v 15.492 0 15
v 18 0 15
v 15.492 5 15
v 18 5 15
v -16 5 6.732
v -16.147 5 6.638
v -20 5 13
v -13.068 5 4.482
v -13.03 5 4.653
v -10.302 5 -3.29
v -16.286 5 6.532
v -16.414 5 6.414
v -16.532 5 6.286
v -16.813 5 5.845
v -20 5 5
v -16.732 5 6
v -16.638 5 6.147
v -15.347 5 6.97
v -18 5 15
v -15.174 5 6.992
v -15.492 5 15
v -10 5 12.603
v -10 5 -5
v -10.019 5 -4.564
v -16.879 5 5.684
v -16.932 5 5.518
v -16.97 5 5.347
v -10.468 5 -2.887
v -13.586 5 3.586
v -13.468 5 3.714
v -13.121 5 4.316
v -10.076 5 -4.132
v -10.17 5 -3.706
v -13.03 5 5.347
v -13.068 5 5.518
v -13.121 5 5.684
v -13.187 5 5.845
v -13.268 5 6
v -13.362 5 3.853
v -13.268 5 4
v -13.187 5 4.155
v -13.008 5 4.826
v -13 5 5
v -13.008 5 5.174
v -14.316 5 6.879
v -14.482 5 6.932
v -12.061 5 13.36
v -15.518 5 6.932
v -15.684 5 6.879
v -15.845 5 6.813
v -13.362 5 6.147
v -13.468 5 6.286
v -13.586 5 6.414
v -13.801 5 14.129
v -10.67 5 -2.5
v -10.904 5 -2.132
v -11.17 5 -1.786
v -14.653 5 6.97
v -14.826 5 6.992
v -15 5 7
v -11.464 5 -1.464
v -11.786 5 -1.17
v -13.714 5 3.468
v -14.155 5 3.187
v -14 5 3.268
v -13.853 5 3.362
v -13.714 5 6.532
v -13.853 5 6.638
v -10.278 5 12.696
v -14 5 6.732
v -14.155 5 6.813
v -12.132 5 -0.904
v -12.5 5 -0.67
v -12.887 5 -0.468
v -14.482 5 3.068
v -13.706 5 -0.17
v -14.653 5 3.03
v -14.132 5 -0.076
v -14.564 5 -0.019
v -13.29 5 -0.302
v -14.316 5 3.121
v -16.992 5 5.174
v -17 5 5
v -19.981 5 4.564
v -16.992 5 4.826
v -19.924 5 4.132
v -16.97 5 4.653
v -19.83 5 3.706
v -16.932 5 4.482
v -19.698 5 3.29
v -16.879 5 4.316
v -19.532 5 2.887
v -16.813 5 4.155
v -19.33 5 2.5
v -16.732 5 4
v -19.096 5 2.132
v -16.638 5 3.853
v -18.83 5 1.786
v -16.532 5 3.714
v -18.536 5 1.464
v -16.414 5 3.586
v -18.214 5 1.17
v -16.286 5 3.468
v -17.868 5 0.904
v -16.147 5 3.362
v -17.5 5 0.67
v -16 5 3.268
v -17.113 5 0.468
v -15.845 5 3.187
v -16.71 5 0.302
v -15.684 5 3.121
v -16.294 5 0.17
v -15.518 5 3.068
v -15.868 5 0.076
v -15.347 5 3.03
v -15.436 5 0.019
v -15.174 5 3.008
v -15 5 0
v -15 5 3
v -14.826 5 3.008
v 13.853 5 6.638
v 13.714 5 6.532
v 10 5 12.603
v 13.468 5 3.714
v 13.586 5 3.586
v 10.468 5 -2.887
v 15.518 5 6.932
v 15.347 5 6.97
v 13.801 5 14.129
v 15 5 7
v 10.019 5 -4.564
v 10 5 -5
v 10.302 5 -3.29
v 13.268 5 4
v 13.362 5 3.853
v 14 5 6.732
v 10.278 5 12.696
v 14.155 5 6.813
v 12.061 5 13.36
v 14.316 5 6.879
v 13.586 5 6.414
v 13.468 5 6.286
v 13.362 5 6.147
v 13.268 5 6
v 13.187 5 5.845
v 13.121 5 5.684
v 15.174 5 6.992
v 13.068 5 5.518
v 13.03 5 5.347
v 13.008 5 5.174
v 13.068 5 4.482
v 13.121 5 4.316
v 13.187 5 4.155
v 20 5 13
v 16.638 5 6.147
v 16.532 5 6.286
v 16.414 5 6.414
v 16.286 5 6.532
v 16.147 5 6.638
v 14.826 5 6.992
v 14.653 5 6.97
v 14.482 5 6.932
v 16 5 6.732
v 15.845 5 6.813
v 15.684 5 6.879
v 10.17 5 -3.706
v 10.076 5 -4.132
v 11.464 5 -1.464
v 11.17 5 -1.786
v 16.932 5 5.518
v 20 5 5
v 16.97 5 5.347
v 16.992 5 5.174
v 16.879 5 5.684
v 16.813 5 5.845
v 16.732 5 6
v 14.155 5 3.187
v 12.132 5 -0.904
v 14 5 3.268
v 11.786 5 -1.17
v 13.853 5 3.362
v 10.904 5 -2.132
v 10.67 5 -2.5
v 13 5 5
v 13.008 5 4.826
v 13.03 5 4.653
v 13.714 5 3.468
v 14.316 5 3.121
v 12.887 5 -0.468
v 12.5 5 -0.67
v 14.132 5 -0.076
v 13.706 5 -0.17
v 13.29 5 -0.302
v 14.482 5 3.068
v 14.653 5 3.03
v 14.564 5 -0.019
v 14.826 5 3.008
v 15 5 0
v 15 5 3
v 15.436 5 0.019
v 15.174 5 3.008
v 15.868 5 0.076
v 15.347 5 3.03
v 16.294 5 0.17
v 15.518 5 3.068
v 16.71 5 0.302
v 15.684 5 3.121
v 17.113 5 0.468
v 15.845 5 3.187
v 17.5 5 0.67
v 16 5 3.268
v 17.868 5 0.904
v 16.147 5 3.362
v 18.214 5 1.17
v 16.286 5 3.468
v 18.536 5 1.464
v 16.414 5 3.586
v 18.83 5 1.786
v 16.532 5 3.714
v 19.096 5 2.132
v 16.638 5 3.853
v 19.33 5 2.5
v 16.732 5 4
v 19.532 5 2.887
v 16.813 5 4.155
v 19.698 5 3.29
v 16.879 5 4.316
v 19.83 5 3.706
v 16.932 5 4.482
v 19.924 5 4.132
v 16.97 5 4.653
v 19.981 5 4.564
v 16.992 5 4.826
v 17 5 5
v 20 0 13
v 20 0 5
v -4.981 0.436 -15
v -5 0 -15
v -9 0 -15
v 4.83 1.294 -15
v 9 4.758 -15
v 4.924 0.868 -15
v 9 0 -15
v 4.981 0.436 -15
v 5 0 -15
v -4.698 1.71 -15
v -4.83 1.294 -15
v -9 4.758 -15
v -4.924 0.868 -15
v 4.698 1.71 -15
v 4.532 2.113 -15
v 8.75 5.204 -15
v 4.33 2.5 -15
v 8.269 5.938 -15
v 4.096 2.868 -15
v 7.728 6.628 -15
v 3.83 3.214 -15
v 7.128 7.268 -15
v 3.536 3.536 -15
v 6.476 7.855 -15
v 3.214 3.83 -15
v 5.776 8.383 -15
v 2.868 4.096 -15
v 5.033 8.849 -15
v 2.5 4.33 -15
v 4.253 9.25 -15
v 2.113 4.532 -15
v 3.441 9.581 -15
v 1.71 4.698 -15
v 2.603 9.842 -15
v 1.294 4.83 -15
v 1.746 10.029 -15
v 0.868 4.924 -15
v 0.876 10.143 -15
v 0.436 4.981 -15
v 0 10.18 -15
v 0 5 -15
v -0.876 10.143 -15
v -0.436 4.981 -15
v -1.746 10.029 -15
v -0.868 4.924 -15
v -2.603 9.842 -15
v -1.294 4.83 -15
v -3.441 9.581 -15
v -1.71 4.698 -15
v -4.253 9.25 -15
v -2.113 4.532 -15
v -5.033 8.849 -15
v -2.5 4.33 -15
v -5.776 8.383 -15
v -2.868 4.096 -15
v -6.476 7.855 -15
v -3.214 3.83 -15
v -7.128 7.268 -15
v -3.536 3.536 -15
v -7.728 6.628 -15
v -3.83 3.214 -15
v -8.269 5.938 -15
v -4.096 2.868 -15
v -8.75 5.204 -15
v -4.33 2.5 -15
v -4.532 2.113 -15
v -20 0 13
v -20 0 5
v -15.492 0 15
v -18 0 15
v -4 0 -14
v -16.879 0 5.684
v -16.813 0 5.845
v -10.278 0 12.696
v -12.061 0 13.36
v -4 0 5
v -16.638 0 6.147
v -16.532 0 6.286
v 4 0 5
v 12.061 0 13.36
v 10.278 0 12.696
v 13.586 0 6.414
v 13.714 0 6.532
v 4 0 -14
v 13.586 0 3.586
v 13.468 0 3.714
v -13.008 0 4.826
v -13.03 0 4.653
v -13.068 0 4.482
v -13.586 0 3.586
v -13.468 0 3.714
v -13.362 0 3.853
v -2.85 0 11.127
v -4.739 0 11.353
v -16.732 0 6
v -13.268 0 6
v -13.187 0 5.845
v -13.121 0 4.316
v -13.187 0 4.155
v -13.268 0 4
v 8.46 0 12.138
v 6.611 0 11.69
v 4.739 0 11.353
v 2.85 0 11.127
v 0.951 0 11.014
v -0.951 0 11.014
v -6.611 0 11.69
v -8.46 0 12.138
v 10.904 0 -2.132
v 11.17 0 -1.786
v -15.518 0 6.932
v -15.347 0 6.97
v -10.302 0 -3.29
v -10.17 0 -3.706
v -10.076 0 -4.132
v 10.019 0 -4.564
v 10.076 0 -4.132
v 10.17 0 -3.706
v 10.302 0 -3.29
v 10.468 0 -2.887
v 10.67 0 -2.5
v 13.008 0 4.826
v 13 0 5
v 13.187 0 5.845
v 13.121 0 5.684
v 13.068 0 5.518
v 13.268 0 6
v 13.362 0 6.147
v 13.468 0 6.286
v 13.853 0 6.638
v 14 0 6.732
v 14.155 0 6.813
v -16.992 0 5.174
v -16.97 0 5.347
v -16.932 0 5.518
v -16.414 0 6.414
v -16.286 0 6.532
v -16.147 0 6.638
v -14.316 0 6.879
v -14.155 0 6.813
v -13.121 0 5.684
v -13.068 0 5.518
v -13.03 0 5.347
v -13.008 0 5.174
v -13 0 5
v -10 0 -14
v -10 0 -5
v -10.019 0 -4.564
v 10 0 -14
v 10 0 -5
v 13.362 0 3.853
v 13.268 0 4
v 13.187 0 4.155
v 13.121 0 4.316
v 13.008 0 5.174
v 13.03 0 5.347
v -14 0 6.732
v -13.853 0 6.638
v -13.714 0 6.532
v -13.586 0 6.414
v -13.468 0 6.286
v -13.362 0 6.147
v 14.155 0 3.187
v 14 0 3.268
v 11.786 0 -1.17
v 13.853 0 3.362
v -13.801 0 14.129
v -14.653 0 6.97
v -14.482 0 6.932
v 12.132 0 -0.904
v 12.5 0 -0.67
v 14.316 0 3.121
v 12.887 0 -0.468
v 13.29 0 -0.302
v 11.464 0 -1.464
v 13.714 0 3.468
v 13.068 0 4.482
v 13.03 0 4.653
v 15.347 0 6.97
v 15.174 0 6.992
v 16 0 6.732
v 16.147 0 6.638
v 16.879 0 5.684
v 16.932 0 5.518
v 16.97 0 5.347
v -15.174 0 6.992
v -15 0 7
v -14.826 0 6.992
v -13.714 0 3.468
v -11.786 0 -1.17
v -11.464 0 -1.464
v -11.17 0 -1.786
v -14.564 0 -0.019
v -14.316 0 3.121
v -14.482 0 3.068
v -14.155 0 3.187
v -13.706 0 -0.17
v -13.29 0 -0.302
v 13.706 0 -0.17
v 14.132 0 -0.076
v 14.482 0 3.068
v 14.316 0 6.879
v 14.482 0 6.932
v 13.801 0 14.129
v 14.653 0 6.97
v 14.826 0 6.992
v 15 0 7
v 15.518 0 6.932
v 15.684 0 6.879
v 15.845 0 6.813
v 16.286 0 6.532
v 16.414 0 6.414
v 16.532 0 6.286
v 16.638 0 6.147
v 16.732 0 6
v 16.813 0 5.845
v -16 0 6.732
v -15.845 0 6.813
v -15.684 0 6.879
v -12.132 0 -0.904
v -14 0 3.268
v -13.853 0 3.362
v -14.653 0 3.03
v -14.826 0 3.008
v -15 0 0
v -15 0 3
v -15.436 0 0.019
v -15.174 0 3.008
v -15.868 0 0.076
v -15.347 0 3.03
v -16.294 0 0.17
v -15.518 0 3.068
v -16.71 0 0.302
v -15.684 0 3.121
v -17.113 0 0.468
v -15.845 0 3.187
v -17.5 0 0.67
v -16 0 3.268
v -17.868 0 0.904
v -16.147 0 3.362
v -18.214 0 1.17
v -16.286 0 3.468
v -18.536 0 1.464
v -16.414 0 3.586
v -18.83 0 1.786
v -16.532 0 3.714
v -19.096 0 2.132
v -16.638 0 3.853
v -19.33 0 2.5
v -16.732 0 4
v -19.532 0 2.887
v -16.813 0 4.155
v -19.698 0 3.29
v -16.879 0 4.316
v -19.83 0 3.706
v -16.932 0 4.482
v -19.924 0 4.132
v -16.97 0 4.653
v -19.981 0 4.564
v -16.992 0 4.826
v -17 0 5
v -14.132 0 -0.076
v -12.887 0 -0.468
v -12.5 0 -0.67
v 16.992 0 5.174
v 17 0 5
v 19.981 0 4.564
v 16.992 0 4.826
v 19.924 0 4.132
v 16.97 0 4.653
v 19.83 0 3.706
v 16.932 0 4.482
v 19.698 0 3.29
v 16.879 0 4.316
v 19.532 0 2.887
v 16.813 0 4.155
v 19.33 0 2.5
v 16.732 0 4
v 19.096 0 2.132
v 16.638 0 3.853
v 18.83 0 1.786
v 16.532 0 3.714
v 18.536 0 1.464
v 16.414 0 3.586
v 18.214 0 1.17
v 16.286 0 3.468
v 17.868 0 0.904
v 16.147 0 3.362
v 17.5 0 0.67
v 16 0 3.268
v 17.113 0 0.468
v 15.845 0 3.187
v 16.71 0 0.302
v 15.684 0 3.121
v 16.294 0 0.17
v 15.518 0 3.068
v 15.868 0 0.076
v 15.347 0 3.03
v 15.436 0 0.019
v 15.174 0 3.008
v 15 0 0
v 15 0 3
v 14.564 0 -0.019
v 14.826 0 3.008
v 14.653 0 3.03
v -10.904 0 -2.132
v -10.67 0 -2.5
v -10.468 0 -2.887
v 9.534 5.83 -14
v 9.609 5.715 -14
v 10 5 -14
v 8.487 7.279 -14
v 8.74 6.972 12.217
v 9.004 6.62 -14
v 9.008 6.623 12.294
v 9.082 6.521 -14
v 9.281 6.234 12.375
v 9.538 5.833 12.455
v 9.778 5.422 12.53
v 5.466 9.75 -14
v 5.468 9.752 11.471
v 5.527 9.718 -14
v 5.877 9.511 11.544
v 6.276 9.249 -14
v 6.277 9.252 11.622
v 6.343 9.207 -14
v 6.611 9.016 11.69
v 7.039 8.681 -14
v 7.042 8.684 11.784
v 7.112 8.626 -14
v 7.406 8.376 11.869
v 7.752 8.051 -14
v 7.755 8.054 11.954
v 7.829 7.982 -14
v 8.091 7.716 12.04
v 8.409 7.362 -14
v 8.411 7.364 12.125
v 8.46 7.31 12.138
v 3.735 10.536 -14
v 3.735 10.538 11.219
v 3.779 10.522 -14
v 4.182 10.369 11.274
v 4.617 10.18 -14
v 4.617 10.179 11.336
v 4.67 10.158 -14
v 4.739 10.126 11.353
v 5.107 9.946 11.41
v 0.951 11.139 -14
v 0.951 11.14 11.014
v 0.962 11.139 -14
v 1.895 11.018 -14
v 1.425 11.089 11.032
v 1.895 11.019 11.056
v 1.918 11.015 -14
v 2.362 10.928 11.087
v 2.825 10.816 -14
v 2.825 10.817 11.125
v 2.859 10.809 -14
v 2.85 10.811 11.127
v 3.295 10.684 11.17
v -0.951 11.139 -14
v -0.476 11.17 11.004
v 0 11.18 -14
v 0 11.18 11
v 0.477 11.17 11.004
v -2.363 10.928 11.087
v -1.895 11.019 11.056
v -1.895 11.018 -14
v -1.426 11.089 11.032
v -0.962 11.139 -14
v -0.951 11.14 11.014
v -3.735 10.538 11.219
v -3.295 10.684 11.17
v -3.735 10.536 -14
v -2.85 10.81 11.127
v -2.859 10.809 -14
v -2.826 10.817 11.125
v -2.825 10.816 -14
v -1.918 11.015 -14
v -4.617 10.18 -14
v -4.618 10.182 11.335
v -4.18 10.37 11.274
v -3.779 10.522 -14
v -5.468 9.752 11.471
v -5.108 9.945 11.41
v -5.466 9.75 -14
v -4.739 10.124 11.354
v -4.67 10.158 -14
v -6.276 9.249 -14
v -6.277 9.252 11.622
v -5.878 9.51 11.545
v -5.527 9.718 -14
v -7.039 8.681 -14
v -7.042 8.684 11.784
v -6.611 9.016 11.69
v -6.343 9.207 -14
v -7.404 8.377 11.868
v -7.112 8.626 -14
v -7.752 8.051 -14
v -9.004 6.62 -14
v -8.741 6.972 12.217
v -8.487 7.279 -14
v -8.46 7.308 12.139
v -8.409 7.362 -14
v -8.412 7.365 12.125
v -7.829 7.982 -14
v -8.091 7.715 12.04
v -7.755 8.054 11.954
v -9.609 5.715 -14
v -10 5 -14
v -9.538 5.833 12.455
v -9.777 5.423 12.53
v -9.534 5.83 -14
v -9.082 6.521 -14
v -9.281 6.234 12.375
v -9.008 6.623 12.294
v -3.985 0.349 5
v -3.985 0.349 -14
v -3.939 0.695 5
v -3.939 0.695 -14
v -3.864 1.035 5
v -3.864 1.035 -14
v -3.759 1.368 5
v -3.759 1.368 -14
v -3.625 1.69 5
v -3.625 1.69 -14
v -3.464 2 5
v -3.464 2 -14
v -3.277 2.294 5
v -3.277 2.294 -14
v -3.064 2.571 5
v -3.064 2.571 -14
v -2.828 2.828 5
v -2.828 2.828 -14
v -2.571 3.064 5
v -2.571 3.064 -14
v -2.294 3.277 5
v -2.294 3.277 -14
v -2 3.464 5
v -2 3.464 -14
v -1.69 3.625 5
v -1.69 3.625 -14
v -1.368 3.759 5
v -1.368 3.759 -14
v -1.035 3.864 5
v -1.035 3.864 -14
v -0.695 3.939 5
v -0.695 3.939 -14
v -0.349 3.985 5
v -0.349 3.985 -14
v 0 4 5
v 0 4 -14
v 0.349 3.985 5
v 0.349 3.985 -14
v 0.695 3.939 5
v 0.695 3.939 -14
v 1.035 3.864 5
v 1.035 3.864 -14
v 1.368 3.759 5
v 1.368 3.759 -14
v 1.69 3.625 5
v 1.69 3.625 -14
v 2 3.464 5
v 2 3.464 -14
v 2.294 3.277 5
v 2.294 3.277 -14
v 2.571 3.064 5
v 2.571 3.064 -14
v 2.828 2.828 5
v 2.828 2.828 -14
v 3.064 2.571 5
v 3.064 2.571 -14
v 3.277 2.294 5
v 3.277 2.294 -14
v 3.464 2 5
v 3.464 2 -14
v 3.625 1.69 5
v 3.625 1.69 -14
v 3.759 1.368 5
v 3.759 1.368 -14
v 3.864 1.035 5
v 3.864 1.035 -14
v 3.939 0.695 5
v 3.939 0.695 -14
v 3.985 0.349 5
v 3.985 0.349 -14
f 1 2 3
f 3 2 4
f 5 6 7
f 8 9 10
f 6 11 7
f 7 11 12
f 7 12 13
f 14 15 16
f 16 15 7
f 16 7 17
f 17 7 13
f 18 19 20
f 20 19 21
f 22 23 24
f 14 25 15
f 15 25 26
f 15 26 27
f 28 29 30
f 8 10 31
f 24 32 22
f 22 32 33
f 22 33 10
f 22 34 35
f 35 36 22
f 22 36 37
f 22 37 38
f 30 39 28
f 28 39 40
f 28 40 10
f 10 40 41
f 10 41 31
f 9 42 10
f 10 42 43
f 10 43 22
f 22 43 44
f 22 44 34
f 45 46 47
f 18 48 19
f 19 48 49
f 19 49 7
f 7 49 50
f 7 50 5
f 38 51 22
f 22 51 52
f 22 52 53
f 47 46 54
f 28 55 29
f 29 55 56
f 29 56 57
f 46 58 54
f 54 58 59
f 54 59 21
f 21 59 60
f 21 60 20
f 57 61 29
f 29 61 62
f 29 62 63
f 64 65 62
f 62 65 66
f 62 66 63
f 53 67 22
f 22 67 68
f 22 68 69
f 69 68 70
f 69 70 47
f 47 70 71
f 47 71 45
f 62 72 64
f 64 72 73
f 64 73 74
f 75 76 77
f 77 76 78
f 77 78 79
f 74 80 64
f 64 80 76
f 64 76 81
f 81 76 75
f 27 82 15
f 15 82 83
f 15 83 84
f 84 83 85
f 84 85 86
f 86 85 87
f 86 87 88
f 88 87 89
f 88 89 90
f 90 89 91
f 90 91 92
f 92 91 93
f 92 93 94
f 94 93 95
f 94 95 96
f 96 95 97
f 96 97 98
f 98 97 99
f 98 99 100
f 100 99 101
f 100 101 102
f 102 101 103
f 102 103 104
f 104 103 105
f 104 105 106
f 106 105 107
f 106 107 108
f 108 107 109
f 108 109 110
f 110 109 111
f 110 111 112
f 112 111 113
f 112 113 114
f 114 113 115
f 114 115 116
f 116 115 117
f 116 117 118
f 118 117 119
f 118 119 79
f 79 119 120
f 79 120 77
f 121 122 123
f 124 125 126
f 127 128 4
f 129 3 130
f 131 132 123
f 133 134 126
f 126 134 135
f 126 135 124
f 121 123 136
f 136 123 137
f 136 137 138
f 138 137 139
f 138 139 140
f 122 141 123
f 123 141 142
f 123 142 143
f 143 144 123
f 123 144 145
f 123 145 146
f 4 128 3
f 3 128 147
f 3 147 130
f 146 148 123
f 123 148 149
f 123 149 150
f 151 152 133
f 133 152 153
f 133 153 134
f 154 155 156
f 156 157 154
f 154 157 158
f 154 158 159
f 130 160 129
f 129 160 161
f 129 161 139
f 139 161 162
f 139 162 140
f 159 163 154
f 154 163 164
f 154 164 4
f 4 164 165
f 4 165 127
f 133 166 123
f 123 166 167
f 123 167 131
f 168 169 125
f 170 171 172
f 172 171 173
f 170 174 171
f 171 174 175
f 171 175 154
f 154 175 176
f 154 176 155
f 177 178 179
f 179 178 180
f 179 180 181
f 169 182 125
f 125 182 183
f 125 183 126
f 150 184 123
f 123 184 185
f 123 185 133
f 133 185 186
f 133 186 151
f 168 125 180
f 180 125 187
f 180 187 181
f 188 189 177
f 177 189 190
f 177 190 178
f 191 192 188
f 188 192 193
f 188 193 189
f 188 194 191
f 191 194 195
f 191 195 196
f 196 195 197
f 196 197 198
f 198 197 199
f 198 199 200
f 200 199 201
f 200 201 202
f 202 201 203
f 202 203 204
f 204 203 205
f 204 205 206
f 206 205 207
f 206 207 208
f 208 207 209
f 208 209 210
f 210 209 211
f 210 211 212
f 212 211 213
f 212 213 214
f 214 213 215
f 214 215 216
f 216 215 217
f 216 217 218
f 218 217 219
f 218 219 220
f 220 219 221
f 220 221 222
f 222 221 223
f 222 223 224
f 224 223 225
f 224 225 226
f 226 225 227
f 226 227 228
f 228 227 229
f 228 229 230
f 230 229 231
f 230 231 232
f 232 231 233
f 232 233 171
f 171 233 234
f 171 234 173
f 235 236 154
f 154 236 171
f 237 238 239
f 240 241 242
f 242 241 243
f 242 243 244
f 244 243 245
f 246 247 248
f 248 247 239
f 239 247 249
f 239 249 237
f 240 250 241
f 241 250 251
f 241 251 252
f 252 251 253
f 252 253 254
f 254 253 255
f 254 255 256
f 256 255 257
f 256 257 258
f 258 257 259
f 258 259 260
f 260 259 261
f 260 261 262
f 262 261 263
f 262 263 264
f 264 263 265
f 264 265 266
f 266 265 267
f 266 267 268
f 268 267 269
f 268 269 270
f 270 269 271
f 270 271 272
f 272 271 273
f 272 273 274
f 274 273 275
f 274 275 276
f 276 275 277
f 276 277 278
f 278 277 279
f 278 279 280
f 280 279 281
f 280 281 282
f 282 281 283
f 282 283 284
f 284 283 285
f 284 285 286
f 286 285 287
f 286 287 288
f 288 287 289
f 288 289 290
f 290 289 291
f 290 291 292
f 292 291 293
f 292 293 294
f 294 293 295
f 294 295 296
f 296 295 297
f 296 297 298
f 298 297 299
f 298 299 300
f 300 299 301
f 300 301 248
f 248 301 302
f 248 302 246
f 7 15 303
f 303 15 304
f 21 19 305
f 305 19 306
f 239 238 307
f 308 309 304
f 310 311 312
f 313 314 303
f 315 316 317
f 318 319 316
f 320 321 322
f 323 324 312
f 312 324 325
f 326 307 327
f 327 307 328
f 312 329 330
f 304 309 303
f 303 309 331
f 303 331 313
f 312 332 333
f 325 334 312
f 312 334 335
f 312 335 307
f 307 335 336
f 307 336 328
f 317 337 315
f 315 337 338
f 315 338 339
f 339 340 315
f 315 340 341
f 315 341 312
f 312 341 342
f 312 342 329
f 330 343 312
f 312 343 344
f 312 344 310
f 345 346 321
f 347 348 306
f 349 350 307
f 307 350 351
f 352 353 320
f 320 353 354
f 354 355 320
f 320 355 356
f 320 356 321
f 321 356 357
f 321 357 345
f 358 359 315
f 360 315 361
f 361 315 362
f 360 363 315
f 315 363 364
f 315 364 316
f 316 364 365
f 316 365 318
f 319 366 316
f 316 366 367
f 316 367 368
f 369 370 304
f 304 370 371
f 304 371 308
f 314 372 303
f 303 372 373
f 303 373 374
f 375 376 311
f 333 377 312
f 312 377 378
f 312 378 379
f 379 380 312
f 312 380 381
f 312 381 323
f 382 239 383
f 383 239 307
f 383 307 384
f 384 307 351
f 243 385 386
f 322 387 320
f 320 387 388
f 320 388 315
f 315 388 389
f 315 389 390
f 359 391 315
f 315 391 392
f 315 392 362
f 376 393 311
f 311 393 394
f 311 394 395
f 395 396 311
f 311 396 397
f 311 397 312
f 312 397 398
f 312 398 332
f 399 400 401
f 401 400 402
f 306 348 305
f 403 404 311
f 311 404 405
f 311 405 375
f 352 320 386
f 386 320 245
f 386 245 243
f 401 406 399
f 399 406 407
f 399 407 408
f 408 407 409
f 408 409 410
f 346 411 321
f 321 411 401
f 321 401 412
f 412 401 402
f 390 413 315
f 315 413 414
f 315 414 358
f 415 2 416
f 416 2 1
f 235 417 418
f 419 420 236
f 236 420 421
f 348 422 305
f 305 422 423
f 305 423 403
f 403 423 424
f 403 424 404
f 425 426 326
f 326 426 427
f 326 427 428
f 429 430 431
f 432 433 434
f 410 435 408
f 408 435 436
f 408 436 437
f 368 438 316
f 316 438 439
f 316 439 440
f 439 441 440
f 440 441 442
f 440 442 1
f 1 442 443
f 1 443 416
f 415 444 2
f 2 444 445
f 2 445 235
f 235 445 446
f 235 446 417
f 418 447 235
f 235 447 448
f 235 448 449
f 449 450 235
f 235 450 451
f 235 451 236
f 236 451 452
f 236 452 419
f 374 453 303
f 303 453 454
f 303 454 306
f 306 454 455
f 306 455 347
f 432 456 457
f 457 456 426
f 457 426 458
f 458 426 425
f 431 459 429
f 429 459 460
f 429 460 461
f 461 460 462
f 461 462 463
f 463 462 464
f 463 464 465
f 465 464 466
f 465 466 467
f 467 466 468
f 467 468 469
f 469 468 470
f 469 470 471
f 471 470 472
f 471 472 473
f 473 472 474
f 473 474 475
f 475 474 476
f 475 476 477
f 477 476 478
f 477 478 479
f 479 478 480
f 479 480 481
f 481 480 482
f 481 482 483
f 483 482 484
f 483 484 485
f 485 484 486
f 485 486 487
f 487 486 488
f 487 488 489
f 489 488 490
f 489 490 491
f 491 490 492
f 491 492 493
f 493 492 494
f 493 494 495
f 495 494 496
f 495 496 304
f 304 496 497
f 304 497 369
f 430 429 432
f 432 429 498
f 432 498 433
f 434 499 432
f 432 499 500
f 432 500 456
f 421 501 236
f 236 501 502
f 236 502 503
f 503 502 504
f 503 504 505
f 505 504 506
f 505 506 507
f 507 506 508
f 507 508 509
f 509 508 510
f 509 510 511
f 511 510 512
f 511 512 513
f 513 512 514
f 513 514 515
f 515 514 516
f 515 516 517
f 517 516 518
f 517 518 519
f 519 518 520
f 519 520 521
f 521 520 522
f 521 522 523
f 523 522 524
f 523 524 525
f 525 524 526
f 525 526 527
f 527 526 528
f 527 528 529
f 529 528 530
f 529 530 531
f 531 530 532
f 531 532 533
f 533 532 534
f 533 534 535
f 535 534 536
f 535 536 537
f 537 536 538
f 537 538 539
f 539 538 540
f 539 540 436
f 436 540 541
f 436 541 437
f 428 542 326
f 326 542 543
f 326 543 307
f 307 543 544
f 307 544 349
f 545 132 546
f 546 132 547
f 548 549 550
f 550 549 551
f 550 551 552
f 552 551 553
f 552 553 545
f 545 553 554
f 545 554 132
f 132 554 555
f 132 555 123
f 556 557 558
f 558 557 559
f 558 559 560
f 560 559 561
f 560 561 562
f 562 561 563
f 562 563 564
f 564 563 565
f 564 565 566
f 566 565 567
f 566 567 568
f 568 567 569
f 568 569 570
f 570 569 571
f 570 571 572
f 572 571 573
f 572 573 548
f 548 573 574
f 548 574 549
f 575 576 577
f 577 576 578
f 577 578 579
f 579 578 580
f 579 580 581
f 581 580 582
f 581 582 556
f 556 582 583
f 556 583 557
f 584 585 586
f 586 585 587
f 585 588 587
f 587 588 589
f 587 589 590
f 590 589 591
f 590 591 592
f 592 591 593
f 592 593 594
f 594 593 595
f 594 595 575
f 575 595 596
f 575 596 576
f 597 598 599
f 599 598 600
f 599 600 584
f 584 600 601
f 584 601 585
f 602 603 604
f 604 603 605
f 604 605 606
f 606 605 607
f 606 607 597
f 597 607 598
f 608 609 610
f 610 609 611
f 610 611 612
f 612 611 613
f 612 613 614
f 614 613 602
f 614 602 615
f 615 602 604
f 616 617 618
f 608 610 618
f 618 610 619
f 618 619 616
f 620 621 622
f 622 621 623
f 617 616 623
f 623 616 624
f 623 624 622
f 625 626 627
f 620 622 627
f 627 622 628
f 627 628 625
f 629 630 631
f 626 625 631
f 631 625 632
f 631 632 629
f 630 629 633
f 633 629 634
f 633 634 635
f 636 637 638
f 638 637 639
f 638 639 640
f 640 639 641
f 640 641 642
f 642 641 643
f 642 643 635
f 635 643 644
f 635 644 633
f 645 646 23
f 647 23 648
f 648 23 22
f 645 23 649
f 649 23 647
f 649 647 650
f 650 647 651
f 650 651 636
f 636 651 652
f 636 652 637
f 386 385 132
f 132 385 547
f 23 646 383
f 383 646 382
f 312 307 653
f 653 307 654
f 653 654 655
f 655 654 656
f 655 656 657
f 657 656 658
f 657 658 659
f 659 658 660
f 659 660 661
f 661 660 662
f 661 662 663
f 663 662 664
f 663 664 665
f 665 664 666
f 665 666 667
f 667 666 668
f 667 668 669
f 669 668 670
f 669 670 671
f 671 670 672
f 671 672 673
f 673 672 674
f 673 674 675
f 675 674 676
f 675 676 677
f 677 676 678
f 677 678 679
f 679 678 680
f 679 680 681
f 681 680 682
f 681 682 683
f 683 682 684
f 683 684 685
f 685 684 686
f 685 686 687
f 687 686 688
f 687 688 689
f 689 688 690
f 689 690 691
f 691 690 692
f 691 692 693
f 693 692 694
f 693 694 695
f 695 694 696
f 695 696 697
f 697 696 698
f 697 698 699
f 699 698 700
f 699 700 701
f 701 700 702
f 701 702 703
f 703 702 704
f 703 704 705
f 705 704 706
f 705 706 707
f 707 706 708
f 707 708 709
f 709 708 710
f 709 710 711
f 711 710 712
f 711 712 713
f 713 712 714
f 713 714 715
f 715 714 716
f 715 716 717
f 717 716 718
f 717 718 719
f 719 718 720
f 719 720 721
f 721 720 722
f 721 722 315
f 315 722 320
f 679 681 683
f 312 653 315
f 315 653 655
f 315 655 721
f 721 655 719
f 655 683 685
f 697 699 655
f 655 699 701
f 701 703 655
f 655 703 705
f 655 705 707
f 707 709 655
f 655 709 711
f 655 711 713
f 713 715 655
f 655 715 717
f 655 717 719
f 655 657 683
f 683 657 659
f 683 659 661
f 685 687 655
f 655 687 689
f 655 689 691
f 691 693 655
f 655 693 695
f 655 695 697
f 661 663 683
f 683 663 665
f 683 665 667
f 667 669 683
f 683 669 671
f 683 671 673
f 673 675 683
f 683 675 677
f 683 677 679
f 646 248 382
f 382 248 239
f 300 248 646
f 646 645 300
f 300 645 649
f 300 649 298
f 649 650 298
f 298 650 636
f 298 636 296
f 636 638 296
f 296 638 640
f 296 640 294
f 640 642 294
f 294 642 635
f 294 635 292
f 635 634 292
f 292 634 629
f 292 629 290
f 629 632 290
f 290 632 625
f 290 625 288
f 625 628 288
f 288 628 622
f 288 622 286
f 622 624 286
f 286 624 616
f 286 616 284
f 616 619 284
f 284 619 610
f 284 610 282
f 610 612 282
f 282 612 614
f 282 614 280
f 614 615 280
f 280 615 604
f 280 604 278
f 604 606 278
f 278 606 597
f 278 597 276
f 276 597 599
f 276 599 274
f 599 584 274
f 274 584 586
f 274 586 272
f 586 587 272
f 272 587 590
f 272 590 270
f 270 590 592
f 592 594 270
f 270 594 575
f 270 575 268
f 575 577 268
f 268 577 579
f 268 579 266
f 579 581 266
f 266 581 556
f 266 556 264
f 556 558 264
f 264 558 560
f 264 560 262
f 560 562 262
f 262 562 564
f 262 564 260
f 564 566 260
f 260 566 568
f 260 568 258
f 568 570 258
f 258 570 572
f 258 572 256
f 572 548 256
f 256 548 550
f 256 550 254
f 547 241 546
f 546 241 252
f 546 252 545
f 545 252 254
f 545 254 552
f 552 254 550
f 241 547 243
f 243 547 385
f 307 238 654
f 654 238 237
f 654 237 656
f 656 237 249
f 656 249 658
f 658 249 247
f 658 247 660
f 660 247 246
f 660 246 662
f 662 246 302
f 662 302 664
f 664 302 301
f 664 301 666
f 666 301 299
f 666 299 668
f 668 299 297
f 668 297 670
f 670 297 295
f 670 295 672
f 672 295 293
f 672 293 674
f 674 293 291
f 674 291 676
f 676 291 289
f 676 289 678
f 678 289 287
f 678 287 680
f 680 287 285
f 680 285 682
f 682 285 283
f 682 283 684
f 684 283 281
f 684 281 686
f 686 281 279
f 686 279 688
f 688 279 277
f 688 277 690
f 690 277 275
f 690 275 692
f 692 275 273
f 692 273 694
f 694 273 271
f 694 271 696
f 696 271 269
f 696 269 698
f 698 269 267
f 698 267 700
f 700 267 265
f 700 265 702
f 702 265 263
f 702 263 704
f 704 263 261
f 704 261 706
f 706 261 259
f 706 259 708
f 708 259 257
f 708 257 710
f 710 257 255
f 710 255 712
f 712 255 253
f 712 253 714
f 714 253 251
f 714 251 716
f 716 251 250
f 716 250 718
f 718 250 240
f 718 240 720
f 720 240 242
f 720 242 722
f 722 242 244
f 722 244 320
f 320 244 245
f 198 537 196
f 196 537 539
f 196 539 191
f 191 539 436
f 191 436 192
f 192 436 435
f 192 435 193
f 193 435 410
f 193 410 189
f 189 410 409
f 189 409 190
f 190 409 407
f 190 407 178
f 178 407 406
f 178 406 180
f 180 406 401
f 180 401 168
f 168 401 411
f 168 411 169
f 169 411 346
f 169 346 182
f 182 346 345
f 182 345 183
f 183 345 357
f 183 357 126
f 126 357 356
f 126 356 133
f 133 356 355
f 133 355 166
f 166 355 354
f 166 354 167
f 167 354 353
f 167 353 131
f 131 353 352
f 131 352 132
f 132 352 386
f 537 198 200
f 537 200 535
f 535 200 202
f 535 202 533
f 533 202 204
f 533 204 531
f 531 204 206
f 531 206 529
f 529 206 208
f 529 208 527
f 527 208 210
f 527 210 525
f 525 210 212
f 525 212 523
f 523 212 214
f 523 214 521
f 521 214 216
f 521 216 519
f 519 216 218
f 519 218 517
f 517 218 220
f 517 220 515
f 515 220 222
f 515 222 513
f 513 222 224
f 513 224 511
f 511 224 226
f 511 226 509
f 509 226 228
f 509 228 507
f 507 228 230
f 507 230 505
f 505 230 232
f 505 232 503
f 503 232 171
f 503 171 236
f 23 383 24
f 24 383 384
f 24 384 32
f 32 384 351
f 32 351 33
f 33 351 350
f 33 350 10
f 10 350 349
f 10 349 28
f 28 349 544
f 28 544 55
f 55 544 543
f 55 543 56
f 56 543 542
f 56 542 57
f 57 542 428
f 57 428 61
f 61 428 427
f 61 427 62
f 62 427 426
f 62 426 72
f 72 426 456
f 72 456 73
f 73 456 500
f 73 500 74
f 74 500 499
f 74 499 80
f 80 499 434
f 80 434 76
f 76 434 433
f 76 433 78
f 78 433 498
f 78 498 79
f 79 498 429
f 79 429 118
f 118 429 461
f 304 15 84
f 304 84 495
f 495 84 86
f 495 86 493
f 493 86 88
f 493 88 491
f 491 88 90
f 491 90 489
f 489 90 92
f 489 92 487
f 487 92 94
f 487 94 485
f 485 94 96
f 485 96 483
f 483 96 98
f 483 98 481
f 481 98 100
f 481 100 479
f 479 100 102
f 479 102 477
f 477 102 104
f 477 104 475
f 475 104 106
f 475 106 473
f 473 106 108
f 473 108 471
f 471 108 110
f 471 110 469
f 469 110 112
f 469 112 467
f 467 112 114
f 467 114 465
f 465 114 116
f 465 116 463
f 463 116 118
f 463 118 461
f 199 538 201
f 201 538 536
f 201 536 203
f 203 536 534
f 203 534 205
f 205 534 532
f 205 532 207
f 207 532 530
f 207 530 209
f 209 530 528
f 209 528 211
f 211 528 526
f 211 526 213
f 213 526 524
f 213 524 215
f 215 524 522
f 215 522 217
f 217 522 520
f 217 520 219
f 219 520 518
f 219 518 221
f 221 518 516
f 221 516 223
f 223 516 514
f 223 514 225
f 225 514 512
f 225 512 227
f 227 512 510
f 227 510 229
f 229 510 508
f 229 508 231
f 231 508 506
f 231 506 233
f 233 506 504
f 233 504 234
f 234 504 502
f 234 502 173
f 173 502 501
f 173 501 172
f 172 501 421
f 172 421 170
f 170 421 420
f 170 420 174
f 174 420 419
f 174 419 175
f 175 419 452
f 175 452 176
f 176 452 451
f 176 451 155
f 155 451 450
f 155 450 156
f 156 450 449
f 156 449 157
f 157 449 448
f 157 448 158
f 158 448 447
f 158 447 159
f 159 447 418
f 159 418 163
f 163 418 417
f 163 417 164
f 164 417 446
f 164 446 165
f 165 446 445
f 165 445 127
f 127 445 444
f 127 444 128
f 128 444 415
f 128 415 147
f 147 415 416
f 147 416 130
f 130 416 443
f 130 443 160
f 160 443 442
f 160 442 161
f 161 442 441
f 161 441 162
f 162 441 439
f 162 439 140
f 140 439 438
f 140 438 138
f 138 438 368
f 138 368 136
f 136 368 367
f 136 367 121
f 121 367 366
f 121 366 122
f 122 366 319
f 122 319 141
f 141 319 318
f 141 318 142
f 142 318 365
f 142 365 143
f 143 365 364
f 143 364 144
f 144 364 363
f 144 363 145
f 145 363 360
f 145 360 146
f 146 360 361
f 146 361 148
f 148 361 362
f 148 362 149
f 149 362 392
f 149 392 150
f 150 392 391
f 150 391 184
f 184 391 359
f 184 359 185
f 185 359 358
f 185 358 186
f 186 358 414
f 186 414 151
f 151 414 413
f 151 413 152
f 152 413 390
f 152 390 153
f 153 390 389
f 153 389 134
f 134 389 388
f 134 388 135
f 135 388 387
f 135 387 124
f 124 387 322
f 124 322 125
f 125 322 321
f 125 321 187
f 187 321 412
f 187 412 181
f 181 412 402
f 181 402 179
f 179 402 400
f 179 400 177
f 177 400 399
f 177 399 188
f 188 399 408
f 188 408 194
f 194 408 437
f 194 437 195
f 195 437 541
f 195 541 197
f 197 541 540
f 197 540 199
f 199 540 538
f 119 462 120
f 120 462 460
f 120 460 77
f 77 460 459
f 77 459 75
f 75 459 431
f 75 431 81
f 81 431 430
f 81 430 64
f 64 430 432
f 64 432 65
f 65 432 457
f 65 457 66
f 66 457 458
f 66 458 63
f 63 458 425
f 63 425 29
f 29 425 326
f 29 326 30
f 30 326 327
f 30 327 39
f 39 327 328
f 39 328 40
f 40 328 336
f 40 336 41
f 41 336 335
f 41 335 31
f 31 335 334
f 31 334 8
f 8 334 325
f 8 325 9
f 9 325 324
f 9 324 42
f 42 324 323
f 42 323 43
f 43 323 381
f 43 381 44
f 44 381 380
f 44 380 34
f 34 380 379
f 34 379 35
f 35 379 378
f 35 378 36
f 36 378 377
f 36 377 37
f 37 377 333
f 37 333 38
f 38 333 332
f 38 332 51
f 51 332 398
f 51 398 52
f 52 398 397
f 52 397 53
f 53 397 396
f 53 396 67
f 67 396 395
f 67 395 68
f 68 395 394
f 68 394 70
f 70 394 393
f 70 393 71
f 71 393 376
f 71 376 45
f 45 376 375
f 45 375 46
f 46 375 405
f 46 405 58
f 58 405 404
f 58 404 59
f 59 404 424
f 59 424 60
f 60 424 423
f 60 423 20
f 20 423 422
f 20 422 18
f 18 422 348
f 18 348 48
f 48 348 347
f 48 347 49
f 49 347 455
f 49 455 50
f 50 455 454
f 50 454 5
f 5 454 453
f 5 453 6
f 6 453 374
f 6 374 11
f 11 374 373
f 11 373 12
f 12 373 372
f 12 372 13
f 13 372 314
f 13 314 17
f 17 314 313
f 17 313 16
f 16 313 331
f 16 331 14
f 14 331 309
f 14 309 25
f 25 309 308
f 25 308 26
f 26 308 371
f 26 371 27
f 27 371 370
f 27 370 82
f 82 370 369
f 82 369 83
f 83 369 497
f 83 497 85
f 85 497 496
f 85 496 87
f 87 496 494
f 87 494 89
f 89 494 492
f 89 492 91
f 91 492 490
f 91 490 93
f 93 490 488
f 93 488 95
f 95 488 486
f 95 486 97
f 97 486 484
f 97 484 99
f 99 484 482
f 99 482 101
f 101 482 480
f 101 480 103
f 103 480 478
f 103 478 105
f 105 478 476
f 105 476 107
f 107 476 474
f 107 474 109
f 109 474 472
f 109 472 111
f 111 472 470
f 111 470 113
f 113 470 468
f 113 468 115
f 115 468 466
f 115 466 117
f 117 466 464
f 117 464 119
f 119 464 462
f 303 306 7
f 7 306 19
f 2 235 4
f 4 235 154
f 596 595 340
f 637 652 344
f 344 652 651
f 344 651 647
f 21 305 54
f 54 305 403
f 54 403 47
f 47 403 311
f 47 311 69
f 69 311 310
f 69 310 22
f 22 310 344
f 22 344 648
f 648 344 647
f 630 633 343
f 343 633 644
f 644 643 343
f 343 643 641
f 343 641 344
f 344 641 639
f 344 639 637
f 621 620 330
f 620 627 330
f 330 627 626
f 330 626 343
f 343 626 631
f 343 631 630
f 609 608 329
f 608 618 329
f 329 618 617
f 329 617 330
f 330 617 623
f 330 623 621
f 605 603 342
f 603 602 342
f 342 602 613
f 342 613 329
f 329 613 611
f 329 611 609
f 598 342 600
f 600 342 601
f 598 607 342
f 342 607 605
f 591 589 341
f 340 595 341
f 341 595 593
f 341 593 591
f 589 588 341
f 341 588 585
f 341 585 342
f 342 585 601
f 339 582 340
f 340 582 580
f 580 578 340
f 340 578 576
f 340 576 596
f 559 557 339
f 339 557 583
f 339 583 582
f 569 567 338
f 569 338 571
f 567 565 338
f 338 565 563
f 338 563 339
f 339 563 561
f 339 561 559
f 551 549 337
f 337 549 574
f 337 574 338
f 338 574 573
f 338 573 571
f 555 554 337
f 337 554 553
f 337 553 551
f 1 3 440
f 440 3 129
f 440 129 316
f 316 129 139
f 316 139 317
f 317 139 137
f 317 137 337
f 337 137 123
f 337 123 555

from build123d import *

# Parameters (mm, degrees)
SKETCH1_W           = 40
SKETCH1_H           = 30
BOSS_EXTRUDE1_DEPTH = 5
SKETCH3_W           = 20
SKETCH3_H           = 30
BOSS_EXTRUDE2_DEPTH = 7.5
CUT_EXTRUDE1_DEPTH  = 39.160843806
SKETCH5_W           = 10
SKETCH5_H           = 15
CUT_EXTRUDE2_DEPTH  = 26.752603774
SKETCH6_R           = 4
CUT_EXTRUDE3_DEPTH  = 20
CHAMFER1_SIZE       = 1
FILLET1_R           = 5
SKETCH7_R           = 2
CUT_EXTRUDE4_DEPTH  = 28.386127875
CHAMFER2_SIZE       = 2
SKETCH8_R           = 32
CUT_EXTRUDE5_DEPTH  = 28.386127875


with BuildPart() as part:
    # Sketch1 → Boss-Extrude1 (new body)
    with BuildSketch(Plane(origin=(0, 0, 0), x_dir=(1, 0, 0), z_dir=(0, 1, 0))):
        Rectangle(SKETCH1_W, SKETCH1_H)
    extrude(amount=BOSS_EXTRUDE1_DEPTH)

    # Sketch3 → Boss-Extrude2 (add)
    with BuildSketch(Plane(origin=(0, 5, 0), x_dir=(1, 0, 0), z_dir=(0, 1, 0))):
        Rectangle(SKETCH3_W, SKETCH3_H)
    extrude(amount=BOSS_EXTRUDE2_DEPTH)

    # Sketch4 → Cut-Extrude1 (cut, through all)
    with BuildSketch(Plane(origin=(0, 0, -15), x_dir=(-1, 0, 0), z_dir=(0, 0, -1))):
        with BuildLine():
            Line((-10, 5), (-10, 21.180339887))
            Line((-10, 21.180339887), (10, 21.180339887))
            Line((10, 21.180339887), (10, 5))
            ThreePointArc((10, 5), (0, 11.180339887), (-10, 5))
        make_face()
    extrude(amount=-CUT_EXTRUDE1_DEPTH, mode=Mode.SUBTRACT)

    # Sketch5 → Cut-Extrude2 (cut, through all)
    with BuildSketch(Plane(origin=(0, 5, 0), x_dir=(1, 0, 0), z_dir=(0, 1, 0))):
        with Locations((-15, 7.5)):
            Rectangle(SKETCH5_W, SKETCH5_H)
        with Locations((15, 7.5)):
            Rectangle(SKETCH5_W, SKETCH5_H)
    extrude(amount=-CUT_EXTRUDE2_DEPTH, mode=Mode.SUBTRACT)

    # Sketch6 → Cut-Extrude3 (cut)
    with BuildSketch(Plane(origin=(0, 0, -15), x_dir=(-1, 0, 0), z_dir=(0, 0, -1))):
        Circle(SKETCH6_R)
    extrude(amount=-CUT_EXTRUDE3_DEPTH, mode=Mode.SUBTRACT)

    # Chamfer1
    chamfer1_edges = [part.edges().sort_by_distance(p)[0] for p in [
        (0, 11.180339887, -15),
        (-10, 2.5, -15),
        (10, 2.5, -15),
        (0, 4, -15),
    ]]
    chamfer(chamfer1_edges, length=CHAMFER1_SIZE)

    # Fillet1
    fillet1_edges = [part.edges().sort_by_distance(p)[0] for p in [
        (10, 2.5, 0),
        (-10, 2.5, 0),
    ]]
    fillet(fillet1_edges, radius=FILLET1_R)
    fillet1_2_edges = [part.edges().sort_by_distance(p)[0] for p in [
        (20, 2.5, 0),
        (-20, 2.5, 0),
    ]]
    fillet(fillet1_2_edges, radius=FILLET1_R - 0.0001)  # a hair under: the kernel refuses the full size

    # Sketch7 → Cut-Extrude4 (cut, through all)
    with BuildSketch(Plane.XZ):
        with Locations(Location((-15, 5, 0), (0, 0, 270))):
            Circle(SKETCH7_R)
        with Locations(Location((15, 5, 0), (0, 0, 270))):
            Circle(SKETCH7_R)
    extrude(amount=-CUT_EXTRUDE4_DEPTH, mode=Mode.SUBTRACT)

    # Chamfer2
    chamfer2_edges = [part.edges().sort_by_distance(p)[0] for p in [
        (20, 2.5, 15),
        (-20, 2.5, 15),
    ]]
    chamfer(chamfer2_edges, length=CHAMFER2_SIZE)

    # Sketch8 → Cut-Extrude5 (cut, through all)
    with BuildSketch(Plane.XZ):
        with Locations((0, 43)):
            Circle(SKETCH8_R)
    extrude(amount=-CUT_EXTRUDE5_DEPTH, mode=Mode.SUBTRACT)


solid = part.part
